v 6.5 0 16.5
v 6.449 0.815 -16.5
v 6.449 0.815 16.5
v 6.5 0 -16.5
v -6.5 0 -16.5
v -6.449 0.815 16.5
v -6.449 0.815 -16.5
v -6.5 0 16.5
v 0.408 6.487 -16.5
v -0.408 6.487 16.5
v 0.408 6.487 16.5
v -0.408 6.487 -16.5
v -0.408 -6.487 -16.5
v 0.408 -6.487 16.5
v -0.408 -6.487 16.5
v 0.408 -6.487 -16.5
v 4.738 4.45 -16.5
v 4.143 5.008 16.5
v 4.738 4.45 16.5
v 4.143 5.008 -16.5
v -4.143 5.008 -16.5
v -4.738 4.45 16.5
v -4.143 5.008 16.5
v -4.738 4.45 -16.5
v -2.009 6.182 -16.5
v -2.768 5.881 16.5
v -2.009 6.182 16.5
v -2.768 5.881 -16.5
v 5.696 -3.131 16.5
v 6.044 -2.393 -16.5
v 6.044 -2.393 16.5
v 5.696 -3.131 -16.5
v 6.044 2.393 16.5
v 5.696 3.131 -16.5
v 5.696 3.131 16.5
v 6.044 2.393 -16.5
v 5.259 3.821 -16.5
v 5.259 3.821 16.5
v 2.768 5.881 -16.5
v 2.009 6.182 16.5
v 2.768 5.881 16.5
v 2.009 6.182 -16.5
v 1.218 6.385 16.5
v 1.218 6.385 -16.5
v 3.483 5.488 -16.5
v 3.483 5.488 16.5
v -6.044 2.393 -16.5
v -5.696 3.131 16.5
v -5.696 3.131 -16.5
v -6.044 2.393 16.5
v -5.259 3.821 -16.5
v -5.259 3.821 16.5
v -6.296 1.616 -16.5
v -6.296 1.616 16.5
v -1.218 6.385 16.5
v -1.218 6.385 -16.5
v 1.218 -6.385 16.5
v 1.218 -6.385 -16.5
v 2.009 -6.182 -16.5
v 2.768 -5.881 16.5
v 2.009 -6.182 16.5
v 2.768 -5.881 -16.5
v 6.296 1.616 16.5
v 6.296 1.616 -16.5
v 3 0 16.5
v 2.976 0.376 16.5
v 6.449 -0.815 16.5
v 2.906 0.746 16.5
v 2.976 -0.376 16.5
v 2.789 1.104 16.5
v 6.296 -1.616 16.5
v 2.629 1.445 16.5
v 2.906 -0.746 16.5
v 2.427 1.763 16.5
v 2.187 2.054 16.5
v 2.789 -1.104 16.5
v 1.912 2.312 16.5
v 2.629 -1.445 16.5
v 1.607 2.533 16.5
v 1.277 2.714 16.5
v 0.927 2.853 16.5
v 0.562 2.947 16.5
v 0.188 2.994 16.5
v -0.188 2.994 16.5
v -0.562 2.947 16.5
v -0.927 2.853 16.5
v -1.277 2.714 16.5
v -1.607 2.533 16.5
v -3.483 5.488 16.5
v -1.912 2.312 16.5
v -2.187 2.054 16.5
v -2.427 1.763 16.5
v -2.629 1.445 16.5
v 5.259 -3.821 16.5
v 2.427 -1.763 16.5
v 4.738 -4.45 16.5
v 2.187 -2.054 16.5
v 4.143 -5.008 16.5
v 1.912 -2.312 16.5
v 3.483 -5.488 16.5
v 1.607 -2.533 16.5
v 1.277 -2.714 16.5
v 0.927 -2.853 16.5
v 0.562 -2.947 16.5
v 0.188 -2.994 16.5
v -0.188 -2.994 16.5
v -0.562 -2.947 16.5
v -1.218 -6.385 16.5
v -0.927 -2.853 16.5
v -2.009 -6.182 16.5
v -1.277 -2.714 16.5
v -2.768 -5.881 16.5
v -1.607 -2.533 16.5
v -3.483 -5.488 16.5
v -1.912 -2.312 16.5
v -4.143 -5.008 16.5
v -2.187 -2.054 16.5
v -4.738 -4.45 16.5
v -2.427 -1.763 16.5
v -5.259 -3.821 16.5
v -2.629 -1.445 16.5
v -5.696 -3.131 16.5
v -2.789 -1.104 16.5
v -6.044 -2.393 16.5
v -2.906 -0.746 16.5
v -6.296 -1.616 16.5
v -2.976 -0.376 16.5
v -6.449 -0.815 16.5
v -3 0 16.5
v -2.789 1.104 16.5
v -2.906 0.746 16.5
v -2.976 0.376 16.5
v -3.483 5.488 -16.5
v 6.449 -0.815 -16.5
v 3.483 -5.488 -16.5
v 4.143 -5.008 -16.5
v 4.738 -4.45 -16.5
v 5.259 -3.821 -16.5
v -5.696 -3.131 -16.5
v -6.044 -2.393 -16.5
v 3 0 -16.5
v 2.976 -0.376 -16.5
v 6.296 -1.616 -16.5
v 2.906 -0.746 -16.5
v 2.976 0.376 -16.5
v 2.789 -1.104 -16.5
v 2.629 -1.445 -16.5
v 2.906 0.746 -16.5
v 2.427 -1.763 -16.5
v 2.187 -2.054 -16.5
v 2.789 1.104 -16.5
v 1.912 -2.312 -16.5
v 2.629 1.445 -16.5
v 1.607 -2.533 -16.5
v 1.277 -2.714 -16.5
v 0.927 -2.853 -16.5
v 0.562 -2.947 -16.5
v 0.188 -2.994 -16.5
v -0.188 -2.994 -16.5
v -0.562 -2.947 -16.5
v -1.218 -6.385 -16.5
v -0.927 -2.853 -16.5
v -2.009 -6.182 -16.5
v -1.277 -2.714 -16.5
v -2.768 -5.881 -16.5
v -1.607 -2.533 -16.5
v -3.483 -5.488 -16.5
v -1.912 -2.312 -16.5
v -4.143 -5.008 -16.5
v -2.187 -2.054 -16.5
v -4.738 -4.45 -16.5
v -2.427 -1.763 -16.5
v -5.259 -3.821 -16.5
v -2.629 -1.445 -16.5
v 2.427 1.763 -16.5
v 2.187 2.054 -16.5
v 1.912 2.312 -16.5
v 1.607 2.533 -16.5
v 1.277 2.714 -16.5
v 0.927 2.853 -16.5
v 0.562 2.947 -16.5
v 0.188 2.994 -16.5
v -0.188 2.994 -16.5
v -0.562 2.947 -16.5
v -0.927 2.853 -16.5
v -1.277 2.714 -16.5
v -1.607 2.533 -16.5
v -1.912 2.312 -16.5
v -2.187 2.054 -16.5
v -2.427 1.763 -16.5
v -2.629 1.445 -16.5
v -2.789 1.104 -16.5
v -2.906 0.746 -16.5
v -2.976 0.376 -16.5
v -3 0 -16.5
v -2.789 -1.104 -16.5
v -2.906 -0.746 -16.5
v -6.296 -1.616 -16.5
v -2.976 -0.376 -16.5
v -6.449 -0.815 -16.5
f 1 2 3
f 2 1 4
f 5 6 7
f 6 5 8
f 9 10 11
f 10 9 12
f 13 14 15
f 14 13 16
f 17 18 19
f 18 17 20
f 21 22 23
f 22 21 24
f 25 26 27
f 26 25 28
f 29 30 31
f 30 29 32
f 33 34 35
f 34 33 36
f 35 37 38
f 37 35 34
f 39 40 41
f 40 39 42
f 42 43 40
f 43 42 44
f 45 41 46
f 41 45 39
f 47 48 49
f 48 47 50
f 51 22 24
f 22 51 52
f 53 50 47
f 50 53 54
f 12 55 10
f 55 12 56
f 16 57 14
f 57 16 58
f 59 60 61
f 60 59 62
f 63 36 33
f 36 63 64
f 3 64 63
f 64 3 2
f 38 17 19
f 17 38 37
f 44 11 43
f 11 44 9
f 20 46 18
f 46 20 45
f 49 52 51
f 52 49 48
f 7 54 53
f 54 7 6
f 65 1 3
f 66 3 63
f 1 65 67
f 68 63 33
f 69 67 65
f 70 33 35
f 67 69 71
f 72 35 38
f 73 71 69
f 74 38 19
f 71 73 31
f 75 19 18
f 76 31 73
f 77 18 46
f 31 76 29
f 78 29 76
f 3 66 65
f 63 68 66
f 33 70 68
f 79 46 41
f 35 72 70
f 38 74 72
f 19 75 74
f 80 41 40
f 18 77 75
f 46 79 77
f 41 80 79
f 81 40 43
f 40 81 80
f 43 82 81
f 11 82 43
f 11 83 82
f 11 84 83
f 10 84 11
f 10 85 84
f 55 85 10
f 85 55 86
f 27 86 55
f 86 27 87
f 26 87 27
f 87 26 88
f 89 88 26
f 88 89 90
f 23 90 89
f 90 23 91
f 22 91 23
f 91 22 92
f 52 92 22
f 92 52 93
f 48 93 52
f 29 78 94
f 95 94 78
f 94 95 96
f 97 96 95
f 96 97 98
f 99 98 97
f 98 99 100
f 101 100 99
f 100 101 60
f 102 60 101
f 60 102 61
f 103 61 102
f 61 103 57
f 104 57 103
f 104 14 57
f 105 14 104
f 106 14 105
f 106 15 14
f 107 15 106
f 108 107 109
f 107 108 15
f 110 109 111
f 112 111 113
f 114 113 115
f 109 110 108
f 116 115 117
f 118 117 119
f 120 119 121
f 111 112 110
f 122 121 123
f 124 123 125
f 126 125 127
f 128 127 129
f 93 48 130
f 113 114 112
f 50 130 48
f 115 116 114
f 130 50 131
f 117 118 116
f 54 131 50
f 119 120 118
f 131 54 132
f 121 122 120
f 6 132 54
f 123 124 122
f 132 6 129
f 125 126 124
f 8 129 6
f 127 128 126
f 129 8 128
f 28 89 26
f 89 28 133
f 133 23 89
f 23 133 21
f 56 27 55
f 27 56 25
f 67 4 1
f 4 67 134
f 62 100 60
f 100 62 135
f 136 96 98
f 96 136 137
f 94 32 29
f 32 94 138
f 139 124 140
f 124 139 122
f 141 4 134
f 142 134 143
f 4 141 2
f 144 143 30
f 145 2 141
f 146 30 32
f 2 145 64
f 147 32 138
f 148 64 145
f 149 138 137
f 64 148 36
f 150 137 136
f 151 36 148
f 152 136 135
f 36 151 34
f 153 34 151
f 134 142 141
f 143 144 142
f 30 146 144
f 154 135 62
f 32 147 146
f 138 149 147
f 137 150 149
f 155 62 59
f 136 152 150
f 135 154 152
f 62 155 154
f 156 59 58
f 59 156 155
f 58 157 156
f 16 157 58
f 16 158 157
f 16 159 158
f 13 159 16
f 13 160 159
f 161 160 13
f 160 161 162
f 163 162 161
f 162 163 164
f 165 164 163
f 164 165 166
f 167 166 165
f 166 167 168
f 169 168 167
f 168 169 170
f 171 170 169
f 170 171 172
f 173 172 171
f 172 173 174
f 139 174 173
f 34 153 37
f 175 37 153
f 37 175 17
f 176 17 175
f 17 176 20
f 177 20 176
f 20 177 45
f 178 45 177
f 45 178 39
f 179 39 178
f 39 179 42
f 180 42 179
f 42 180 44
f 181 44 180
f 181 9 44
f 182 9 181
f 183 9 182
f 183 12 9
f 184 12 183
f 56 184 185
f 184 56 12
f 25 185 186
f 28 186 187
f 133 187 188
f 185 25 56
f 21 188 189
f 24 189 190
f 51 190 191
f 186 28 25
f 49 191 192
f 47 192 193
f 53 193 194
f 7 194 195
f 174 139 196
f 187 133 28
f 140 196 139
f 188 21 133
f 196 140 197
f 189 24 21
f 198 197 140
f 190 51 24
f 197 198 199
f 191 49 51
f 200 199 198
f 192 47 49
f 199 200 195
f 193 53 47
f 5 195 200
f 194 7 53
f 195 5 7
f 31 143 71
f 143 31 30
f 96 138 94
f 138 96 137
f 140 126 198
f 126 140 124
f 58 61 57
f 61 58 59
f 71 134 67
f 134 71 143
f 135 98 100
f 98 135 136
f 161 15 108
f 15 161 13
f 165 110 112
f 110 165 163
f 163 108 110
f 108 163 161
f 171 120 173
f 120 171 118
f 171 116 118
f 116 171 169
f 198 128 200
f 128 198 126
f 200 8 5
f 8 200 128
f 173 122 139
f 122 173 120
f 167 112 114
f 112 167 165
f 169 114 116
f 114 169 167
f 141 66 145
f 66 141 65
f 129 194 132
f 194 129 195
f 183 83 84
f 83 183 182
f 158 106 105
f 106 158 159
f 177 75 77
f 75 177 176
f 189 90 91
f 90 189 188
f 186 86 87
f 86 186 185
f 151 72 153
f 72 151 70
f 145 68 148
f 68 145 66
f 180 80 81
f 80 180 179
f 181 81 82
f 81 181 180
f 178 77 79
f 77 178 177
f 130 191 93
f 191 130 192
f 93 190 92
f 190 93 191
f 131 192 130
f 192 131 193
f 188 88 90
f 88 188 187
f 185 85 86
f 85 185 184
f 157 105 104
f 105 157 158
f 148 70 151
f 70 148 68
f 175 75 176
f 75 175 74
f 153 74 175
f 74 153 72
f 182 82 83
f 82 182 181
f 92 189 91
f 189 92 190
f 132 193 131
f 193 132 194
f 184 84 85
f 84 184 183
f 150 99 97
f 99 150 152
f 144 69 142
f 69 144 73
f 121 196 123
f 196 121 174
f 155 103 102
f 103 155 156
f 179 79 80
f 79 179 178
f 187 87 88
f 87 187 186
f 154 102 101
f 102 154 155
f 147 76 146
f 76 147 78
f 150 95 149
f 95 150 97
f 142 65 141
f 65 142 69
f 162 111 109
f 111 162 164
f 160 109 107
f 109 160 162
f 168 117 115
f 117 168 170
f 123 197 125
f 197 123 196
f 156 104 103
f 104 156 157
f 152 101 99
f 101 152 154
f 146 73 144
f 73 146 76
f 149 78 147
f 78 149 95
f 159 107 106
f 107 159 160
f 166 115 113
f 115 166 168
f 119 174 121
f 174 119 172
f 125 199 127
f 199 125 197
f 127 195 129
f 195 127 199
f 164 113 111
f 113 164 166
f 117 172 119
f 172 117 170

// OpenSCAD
$fn = 50;


difference() {
	union() {
		translate(v = [0, 0, -16.5000000000]) {
			cylinder(h = 33, r = 6.5000000000);
		}
	}
	union() {
		translate(v = [0, 0, -100.0000000000]) {
			cylinder(h = 200, r = 3);
		}
	}
}
